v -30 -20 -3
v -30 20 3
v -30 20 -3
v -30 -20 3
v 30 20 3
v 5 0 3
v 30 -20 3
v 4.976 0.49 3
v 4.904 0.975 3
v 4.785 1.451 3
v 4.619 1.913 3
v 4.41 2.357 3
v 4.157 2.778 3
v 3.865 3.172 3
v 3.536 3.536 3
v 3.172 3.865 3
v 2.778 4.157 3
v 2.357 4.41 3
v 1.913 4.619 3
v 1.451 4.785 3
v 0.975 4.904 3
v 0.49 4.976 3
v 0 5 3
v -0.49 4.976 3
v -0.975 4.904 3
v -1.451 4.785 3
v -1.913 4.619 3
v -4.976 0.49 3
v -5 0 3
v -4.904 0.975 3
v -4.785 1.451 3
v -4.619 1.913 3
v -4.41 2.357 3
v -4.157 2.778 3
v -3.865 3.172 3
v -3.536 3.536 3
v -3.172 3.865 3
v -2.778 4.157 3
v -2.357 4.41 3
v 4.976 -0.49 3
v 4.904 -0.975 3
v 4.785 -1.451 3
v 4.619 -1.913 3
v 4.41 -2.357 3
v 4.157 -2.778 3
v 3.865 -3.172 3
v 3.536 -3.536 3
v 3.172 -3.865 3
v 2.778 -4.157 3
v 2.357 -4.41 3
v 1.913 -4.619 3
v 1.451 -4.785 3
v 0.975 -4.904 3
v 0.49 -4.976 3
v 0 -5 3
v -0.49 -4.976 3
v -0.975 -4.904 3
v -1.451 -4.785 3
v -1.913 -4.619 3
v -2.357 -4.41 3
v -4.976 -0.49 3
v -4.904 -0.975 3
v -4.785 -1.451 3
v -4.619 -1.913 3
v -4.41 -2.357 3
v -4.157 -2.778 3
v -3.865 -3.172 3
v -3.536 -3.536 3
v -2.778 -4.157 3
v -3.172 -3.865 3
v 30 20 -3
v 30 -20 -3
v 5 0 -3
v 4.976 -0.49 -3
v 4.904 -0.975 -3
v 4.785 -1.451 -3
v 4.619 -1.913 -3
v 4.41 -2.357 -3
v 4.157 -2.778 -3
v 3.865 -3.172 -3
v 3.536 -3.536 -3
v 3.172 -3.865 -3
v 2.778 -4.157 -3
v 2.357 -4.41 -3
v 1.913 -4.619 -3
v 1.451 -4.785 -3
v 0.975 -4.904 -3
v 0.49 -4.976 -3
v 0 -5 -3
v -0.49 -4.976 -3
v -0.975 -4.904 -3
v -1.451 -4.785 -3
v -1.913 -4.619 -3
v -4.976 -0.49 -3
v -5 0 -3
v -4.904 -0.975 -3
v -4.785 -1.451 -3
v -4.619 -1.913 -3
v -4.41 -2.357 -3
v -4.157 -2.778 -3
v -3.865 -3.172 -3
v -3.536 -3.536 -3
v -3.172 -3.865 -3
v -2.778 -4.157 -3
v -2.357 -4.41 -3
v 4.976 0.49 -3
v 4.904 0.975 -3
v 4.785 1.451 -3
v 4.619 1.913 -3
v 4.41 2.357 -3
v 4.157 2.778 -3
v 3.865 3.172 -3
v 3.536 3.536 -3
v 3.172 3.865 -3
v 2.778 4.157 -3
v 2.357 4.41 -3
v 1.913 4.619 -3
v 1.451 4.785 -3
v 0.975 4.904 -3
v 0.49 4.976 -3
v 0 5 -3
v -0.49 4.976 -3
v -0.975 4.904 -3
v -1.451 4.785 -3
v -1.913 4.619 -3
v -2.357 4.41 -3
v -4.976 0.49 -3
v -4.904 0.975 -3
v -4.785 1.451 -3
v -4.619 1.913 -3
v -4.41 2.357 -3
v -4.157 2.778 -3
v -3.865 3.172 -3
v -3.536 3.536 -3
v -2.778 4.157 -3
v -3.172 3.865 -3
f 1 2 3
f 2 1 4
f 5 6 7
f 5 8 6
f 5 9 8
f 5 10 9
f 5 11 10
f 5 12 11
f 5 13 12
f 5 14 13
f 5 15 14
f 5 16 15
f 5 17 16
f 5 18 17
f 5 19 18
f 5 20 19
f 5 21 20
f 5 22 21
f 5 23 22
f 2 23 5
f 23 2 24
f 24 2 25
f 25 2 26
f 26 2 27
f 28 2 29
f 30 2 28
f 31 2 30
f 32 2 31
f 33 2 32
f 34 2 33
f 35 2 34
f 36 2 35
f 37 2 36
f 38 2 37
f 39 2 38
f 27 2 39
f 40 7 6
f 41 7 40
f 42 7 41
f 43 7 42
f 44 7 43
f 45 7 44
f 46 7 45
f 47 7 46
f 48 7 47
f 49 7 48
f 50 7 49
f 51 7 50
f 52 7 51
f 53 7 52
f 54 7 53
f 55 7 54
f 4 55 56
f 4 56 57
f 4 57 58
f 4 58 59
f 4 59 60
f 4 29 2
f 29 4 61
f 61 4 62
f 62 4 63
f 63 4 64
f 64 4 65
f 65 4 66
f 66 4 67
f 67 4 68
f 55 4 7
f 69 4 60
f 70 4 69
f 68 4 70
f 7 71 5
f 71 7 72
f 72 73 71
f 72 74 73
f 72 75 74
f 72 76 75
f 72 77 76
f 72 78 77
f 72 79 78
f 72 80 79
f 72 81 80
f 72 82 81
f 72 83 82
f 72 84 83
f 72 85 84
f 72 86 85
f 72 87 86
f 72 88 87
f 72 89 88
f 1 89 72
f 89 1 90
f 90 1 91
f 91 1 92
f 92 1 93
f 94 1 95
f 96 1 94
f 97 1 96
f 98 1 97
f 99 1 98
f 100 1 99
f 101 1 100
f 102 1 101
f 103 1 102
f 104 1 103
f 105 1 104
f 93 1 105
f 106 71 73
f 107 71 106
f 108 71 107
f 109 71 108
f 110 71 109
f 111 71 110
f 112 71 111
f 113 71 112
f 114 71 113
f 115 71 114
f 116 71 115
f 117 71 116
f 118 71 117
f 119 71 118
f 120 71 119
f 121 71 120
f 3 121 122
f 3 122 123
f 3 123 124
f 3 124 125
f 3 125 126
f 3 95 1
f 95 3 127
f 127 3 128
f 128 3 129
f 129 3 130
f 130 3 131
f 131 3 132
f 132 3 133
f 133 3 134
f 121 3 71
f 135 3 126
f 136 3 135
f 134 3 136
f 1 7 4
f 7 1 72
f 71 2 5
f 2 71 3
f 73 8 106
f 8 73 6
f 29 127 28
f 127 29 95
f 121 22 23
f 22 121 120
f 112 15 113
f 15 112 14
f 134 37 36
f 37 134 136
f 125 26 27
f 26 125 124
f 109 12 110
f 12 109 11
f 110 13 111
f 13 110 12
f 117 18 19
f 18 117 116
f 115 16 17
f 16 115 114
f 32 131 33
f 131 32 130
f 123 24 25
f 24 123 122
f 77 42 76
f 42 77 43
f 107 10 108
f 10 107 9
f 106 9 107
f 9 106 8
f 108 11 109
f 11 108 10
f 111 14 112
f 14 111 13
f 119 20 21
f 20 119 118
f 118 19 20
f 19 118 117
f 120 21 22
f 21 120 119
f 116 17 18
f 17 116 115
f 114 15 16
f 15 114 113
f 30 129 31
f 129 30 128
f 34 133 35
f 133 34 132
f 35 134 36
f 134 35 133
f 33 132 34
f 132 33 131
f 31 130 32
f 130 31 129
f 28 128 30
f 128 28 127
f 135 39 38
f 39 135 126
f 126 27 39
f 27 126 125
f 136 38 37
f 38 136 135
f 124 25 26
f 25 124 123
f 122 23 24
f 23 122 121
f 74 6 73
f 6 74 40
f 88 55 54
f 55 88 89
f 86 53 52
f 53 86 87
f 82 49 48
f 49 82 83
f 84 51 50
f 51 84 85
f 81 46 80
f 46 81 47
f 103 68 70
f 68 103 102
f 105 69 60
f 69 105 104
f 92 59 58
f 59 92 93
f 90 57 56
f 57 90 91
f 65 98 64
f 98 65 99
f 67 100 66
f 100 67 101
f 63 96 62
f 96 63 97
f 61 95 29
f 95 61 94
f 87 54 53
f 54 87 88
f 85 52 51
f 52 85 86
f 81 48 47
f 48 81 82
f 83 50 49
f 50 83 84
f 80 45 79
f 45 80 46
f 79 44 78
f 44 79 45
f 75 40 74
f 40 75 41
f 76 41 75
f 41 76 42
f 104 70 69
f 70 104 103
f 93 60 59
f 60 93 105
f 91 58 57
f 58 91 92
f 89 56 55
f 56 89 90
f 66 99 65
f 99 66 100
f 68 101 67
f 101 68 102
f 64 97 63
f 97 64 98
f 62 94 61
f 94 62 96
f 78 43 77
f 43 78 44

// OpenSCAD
module plate() {
  difference() {
    cube([60, 40, 6], center=true);
    cylinder(h=6, r=5, center=true, $fn=64);
  }
}

plate();
